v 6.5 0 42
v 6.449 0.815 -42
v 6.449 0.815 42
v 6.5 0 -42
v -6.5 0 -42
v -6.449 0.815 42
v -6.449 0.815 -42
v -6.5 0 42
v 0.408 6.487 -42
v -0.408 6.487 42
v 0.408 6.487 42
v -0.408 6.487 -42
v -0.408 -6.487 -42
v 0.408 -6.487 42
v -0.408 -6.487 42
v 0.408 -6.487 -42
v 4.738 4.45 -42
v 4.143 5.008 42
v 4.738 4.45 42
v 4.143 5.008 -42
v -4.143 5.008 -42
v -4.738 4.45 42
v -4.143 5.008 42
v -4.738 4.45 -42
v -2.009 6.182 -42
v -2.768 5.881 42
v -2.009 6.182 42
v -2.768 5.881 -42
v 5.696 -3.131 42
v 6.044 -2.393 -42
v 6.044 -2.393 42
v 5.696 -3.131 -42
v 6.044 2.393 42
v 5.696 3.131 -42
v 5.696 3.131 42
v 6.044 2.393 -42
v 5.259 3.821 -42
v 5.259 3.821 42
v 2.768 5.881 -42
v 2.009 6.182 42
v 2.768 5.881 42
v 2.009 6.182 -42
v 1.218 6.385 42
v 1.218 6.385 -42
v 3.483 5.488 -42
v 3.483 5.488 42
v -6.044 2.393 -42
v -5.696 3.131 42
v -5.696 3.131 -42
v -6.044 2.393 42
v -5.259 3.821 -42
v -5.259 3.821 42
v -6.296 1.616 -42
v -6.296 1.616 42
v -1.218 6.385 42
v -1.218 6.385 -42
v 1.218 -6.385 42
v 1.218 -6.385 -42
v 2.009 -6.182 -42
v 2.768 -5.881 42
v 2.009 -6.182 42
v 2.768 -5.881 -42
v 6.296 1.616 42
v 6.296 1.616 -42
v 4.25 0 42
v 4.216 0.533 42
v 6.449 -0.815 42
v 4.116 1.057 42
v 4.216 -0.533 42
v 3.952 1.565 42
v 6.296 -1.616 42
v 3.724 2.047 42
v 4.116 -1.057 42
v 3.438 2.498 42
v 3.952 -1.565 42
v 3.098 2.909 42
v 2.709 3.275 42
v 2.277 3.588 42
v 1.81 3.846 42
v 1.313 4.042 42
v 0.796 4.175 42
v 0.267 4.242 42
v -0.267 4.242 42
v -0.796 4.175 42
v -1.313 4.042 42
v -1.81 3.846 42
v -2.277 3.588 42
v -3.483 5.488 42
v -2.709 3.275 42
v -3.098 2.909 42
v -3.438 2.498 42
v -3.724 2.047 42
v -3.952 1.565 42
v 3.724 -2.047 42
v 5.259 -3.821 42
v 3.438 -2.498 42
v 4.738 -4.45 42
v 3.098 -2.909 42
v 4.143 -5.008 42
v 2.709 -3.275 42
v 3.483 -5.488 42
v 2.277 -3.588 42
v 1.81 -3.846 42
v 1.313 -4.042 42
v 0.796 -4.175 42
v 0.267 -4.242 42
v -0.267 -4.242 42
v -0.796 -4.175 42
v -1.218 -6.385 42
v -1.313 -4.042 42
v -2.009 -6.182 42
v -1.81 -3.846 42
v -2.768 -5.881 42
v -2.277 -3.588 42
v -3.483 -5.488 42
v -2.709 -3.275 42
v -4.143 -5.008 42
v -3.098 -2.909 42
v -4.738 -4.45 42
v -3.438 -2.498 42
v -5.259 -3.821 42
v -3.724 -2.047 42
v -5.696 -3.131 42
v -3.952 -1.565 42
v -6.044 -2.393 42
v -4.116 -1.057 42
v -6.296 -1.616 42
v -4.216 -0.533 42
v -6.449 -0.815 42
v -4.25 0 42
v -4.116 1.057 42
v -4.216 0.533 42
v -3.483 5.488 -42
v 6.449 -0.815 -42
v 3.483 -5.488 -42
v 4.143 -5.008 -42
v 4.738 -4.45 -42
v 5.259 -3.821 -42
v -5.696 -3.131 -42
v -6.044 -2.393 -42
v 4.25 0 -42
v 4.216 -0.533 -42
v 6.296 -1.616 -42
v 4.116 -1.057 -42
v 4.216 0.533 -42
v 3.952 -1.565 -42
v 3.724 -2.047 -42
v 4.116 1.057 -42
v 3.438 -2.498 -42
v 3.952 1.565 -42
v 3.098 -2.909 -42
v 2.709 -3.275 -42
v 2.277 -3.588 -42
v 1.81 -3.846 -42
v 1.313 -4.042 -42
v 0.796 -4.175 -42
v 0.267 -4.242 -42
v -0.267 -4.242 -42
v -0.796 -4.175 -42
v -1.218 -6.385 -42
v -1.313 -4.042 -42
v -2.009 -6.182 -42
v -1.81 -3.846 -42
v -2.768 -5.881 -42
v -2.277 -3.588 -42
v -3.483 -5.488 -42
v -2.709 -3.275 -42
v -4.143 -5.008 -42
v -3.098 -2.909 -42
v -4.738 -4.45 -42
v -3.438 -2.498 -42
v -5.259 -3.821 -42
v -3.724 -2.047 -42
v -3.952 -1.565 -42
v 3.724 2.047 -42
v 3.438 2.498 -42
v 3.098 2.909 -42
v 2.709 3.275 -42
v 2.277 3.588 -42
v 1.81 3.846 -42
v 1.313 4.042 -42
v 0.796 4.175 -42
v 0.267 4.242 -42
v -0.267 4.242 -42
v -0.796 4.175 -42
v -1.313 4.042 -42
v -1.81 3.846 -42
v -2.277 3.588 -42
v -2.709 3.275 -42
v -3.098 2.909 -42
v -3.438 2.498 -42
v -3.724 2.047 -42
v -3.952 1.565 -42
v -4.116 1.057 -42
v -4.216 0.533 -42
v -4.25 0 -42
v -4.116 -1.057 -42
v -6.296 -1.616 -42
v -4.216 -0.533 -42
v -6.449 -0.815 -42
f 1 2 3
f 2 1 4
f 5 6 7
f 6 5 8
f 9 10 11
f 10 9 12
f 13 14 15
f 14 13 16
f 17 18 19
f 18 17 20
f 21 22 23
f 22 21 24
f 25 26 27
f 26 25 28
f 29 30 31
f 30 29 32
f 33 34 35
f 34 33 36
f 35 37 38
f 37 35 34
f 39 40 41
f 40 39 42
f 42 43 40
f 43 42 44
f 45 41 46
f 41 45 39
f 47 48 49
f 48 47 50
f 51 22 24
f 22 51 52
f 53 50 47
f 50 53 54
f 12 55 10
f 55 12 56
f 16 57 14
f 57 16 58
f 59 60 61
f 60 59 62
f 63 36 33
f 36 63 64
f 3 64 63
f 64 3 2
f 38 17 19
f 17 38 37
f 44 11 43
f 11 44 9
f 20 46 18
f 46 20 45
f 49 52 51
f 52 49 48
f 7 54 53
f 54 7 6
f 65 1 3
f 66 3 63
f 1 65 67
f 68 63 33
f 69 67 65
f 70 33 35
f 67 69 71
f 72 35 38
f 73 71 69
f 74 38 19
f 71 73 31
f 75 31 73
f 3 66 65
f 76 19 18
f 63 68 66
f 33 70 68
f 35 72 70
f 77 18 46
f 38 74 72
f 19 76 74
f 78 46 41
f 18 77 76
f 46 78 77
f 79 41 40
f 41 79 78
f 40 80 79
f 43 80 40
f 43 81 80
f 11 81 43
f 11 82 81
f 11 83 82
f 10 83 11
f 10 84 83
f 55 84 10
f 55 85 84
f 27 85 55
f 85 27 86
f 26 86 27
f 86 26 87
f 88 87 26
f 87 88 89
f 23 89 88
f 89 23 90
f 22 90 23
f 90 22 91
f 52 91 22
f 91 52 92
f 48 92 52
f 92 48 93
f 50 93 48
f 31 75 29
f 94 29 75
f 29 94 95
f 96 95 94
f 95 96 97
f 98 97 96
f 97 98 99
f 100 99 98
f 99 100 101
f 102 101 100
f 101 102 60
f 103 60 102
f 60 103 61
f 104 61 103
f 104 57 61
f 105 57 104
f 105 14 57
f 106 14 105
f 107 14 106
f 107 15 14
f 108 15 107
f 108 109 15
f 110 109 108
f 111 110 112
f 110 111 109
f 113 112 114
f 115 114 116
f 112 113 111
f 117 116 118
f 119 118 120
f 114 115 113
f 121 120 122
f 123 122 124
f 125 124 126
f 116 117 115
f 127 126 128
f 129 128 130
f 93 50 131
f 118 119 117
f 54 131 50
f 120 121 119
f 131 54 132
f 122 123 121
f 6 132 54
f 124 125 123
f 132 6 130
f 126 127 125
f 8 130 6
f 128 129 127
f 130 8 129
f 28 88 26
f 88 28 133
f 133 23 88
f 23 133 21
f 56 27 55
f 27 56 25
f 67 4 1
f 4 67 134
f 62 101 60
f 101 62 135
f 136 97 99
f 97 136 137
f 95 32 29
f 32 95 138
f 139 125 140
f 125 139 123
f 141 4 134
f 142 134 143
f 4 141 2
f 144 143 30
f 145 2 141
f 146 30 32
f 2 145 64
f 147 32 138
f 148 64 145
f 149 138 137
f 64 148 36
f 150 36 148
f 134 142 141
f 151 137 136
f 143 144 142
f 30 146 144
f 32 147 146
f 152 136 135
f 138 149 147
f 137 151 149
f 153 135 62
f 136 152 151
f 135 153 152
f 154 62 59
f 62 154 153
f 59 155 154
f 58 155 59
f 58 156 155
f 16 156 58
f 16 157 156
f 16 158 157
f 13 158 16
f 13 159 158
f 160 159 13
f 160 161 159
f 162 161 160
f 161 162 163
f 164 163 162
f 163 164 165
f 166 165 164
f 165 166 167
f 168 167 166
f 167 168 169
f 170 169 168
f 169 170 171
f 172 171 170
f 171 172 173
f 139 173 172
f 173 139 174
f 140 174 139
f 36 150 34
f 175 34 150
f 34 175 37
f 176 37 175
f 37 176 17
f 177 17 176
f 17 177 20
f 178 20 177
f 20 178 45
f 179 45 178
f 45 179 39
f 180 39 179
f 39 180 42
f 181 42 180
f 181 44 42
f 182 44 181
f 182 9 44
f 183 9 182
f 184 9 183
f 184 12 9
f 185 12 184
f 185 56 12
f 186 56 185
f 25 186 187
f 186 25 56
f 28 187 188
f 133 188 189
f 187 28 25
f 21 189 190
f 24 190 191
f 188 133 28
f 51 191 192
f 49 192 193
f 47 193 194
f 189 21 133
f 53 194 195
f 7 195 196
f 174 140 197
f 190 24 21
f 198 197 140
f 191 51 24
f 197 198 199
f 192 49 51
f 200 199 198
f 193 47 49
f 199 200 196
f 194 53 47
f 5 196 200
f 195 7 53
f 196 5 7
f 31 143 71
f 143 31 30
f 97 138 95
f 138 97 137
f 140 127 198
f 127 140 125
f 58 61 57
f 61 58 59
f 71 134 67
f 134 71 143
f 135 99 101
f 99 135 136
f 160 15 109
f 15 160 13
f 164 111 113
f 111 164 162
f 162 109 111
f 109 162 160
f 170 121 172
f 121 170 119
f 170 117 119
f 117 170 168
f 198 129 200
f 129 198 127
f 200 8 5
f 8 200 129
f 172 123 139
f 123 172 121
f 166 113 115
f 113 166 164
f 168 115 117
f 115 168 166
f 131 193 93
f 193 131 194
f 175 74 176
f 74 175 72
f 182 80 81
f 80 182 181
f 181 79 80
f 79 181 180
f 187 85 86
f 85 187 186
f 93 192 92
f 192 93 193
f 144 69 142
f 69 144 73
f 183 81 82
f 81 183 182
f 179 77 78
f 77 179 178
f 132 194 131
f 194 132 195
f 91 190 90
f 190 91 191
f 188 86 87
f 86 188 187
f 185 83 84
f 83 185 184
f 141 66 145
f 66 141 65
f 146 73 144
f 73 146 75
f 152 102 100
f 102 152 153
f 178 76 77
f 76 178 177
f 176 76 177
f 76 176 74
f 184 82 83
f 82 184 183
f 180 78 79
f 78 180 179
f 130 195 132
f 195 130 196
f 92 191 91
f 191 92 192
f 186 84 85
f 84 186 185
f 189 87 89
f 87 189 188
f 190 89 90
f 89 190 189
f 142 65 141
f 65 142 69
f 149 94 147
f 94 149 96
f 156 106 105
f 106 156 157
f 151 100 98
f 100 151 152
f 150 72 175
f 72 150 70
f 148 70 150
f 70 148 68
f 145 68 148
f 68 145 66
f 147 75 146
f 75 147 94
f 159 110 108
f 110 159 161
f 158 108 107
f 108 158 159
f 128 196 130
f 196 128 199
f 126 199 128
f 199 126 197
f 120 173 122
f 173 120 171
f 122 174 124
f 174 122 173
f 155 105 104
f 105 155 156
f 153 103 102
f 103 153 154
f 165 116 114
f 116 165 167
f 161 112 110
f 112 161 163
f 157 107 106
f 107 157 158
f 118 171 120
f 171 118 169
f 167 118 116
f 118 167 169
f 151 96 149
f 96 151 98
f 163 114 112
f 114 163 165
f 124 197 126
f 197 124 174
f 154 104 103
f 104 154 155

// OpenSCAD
$fn = 50;


difference() {
	union() {
		translate(v = [0, 0, -42.0000000000]) {
			cylinder(h = 84, r = 6.5000000000);
		}
	}
	union() {
		translate(v = [0, 0, -100.0000000000]) {
			cylinder(h = 200, r = 4.2500000000);
		}
	}
}
